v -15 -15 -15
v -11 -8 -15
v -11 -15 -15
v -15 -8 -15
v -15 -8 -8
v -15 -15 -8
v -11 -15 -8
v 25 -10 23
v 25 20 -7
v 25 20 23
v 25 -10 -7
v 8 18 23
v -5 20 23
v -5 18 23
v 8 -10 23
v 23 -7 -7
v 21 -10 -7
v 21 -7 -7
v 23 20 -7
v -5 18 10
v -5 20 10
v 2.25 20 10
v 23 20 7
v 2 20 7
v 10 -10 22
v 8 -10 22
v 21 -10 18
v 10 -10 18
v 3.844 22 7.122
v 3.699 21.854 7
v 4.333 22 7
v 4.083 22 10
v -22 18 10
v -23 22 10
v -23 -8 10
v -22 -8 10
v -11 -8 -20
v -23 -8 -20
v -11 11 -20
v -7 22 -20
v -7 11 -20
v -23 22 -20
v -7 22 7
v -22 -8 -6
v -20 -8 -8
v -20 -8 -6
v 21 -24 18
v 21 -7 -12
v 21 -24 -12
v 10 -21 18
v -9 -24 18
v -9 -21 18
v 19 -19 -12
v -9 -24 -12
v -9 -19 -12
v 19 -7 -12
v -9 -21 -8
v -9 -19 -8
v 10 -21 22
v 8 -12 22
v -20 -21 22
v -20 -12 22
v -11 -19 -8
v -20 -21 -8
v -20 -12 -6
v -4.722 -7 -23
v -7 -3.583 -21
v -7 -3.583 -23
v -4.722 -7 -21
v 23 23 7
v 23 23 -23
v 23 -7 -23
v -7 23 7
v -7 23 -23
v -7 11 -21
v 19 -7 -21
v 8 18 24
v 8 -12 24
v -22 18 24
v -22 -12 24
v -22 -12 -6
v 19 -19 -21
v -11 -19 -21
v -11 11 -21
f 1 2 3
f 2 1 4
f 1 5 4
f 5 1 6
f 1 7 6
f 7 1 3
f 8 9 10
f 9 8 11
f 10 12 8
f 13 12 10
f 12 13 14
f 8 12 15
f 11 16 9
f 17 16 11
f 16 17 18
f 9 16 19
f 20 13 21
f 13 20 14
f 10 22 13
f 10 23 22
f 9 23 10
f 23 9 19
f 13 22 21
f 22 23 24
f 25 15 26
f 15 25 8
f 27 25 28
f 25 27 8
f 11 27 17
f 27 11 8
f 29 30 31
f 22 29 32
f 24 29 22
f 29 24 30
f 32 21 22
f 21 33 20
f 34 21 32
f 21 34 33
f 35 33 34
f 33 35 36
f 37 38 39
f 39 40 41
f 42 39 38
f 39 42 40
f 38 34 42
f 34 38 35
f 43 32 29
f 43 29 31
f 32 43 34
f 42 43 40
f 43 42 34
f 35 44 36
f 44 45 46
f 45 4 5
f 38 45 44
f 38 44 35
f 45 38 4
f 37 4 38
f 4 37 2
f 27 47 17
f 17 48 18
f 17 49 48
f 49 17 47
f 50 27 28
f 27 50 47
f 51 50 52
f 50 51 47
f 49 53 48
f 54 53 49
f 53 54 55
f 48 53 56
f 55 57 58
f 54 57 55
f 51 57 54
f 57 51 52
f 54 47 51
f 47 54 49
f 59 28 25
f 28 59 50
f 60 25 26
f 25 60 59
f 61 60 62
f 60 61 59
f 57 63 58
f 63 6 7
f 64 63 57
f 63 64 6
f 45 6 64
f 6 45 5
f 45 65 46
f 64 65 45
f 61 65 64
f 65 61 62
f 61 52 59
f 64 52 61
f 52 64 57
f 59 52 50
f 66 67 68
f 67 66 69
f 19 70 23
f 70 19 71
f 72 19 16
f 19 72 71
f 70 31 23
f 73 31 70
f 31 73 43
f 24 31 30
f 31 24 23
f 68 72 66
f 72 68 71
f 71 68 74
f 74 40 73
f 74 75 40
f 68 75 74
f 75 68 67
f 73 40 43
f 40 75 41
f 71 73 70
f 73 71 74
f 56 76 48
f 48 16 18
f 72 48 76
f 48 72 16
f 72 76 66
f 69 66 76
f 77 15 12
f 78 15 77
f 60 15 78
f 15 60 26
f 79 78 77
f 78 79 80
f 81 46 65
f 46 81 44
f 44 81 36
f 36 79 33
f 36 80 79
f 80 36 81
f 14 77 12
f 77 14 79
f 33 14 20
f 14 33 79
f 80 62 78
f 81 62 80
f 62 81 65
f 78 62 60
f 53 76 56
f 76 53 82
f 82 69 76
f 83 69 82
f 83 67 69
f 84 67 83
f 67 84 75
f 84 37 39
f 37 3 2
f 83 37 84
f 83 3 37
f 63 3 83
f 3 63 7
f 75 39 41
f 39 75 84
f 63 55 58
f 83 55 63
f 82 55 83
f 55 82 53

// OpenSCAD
// 3D Voronoi-inspired cellular structure
seed_points = [
    [0, 0, 0], [10, 5, 8], [-8, 7, -5], [6, -9, 3],
    [-5, -6, 7], [8, 8, -8], [-7, 3, 9], [4, -4, -6]
];

module voronoi_cell(point, size = 40) {
    intersection() {
        // Start with a large cube
        cube(size, center = true);
        
        // Cut with planes perpendicular to lines connecting to other points
        for (other = seed_points) {
            if (other != point) {
                midpoint = (point + other) / 2;
                normal = other - point;
                
                translate(midpoint)
                    rotate([0, acos(normal.z / norm(normal)), 
                           atan2(normal.y, normal.x)])
                    translate([0, 0, -size])
                        cube([size*2, size*2, size*2], center = true);
            }
        }
    }
}

// Create all cells
for (point = seed_points) {
    translate(point)
        voronoi_cell(point, 30);
}
